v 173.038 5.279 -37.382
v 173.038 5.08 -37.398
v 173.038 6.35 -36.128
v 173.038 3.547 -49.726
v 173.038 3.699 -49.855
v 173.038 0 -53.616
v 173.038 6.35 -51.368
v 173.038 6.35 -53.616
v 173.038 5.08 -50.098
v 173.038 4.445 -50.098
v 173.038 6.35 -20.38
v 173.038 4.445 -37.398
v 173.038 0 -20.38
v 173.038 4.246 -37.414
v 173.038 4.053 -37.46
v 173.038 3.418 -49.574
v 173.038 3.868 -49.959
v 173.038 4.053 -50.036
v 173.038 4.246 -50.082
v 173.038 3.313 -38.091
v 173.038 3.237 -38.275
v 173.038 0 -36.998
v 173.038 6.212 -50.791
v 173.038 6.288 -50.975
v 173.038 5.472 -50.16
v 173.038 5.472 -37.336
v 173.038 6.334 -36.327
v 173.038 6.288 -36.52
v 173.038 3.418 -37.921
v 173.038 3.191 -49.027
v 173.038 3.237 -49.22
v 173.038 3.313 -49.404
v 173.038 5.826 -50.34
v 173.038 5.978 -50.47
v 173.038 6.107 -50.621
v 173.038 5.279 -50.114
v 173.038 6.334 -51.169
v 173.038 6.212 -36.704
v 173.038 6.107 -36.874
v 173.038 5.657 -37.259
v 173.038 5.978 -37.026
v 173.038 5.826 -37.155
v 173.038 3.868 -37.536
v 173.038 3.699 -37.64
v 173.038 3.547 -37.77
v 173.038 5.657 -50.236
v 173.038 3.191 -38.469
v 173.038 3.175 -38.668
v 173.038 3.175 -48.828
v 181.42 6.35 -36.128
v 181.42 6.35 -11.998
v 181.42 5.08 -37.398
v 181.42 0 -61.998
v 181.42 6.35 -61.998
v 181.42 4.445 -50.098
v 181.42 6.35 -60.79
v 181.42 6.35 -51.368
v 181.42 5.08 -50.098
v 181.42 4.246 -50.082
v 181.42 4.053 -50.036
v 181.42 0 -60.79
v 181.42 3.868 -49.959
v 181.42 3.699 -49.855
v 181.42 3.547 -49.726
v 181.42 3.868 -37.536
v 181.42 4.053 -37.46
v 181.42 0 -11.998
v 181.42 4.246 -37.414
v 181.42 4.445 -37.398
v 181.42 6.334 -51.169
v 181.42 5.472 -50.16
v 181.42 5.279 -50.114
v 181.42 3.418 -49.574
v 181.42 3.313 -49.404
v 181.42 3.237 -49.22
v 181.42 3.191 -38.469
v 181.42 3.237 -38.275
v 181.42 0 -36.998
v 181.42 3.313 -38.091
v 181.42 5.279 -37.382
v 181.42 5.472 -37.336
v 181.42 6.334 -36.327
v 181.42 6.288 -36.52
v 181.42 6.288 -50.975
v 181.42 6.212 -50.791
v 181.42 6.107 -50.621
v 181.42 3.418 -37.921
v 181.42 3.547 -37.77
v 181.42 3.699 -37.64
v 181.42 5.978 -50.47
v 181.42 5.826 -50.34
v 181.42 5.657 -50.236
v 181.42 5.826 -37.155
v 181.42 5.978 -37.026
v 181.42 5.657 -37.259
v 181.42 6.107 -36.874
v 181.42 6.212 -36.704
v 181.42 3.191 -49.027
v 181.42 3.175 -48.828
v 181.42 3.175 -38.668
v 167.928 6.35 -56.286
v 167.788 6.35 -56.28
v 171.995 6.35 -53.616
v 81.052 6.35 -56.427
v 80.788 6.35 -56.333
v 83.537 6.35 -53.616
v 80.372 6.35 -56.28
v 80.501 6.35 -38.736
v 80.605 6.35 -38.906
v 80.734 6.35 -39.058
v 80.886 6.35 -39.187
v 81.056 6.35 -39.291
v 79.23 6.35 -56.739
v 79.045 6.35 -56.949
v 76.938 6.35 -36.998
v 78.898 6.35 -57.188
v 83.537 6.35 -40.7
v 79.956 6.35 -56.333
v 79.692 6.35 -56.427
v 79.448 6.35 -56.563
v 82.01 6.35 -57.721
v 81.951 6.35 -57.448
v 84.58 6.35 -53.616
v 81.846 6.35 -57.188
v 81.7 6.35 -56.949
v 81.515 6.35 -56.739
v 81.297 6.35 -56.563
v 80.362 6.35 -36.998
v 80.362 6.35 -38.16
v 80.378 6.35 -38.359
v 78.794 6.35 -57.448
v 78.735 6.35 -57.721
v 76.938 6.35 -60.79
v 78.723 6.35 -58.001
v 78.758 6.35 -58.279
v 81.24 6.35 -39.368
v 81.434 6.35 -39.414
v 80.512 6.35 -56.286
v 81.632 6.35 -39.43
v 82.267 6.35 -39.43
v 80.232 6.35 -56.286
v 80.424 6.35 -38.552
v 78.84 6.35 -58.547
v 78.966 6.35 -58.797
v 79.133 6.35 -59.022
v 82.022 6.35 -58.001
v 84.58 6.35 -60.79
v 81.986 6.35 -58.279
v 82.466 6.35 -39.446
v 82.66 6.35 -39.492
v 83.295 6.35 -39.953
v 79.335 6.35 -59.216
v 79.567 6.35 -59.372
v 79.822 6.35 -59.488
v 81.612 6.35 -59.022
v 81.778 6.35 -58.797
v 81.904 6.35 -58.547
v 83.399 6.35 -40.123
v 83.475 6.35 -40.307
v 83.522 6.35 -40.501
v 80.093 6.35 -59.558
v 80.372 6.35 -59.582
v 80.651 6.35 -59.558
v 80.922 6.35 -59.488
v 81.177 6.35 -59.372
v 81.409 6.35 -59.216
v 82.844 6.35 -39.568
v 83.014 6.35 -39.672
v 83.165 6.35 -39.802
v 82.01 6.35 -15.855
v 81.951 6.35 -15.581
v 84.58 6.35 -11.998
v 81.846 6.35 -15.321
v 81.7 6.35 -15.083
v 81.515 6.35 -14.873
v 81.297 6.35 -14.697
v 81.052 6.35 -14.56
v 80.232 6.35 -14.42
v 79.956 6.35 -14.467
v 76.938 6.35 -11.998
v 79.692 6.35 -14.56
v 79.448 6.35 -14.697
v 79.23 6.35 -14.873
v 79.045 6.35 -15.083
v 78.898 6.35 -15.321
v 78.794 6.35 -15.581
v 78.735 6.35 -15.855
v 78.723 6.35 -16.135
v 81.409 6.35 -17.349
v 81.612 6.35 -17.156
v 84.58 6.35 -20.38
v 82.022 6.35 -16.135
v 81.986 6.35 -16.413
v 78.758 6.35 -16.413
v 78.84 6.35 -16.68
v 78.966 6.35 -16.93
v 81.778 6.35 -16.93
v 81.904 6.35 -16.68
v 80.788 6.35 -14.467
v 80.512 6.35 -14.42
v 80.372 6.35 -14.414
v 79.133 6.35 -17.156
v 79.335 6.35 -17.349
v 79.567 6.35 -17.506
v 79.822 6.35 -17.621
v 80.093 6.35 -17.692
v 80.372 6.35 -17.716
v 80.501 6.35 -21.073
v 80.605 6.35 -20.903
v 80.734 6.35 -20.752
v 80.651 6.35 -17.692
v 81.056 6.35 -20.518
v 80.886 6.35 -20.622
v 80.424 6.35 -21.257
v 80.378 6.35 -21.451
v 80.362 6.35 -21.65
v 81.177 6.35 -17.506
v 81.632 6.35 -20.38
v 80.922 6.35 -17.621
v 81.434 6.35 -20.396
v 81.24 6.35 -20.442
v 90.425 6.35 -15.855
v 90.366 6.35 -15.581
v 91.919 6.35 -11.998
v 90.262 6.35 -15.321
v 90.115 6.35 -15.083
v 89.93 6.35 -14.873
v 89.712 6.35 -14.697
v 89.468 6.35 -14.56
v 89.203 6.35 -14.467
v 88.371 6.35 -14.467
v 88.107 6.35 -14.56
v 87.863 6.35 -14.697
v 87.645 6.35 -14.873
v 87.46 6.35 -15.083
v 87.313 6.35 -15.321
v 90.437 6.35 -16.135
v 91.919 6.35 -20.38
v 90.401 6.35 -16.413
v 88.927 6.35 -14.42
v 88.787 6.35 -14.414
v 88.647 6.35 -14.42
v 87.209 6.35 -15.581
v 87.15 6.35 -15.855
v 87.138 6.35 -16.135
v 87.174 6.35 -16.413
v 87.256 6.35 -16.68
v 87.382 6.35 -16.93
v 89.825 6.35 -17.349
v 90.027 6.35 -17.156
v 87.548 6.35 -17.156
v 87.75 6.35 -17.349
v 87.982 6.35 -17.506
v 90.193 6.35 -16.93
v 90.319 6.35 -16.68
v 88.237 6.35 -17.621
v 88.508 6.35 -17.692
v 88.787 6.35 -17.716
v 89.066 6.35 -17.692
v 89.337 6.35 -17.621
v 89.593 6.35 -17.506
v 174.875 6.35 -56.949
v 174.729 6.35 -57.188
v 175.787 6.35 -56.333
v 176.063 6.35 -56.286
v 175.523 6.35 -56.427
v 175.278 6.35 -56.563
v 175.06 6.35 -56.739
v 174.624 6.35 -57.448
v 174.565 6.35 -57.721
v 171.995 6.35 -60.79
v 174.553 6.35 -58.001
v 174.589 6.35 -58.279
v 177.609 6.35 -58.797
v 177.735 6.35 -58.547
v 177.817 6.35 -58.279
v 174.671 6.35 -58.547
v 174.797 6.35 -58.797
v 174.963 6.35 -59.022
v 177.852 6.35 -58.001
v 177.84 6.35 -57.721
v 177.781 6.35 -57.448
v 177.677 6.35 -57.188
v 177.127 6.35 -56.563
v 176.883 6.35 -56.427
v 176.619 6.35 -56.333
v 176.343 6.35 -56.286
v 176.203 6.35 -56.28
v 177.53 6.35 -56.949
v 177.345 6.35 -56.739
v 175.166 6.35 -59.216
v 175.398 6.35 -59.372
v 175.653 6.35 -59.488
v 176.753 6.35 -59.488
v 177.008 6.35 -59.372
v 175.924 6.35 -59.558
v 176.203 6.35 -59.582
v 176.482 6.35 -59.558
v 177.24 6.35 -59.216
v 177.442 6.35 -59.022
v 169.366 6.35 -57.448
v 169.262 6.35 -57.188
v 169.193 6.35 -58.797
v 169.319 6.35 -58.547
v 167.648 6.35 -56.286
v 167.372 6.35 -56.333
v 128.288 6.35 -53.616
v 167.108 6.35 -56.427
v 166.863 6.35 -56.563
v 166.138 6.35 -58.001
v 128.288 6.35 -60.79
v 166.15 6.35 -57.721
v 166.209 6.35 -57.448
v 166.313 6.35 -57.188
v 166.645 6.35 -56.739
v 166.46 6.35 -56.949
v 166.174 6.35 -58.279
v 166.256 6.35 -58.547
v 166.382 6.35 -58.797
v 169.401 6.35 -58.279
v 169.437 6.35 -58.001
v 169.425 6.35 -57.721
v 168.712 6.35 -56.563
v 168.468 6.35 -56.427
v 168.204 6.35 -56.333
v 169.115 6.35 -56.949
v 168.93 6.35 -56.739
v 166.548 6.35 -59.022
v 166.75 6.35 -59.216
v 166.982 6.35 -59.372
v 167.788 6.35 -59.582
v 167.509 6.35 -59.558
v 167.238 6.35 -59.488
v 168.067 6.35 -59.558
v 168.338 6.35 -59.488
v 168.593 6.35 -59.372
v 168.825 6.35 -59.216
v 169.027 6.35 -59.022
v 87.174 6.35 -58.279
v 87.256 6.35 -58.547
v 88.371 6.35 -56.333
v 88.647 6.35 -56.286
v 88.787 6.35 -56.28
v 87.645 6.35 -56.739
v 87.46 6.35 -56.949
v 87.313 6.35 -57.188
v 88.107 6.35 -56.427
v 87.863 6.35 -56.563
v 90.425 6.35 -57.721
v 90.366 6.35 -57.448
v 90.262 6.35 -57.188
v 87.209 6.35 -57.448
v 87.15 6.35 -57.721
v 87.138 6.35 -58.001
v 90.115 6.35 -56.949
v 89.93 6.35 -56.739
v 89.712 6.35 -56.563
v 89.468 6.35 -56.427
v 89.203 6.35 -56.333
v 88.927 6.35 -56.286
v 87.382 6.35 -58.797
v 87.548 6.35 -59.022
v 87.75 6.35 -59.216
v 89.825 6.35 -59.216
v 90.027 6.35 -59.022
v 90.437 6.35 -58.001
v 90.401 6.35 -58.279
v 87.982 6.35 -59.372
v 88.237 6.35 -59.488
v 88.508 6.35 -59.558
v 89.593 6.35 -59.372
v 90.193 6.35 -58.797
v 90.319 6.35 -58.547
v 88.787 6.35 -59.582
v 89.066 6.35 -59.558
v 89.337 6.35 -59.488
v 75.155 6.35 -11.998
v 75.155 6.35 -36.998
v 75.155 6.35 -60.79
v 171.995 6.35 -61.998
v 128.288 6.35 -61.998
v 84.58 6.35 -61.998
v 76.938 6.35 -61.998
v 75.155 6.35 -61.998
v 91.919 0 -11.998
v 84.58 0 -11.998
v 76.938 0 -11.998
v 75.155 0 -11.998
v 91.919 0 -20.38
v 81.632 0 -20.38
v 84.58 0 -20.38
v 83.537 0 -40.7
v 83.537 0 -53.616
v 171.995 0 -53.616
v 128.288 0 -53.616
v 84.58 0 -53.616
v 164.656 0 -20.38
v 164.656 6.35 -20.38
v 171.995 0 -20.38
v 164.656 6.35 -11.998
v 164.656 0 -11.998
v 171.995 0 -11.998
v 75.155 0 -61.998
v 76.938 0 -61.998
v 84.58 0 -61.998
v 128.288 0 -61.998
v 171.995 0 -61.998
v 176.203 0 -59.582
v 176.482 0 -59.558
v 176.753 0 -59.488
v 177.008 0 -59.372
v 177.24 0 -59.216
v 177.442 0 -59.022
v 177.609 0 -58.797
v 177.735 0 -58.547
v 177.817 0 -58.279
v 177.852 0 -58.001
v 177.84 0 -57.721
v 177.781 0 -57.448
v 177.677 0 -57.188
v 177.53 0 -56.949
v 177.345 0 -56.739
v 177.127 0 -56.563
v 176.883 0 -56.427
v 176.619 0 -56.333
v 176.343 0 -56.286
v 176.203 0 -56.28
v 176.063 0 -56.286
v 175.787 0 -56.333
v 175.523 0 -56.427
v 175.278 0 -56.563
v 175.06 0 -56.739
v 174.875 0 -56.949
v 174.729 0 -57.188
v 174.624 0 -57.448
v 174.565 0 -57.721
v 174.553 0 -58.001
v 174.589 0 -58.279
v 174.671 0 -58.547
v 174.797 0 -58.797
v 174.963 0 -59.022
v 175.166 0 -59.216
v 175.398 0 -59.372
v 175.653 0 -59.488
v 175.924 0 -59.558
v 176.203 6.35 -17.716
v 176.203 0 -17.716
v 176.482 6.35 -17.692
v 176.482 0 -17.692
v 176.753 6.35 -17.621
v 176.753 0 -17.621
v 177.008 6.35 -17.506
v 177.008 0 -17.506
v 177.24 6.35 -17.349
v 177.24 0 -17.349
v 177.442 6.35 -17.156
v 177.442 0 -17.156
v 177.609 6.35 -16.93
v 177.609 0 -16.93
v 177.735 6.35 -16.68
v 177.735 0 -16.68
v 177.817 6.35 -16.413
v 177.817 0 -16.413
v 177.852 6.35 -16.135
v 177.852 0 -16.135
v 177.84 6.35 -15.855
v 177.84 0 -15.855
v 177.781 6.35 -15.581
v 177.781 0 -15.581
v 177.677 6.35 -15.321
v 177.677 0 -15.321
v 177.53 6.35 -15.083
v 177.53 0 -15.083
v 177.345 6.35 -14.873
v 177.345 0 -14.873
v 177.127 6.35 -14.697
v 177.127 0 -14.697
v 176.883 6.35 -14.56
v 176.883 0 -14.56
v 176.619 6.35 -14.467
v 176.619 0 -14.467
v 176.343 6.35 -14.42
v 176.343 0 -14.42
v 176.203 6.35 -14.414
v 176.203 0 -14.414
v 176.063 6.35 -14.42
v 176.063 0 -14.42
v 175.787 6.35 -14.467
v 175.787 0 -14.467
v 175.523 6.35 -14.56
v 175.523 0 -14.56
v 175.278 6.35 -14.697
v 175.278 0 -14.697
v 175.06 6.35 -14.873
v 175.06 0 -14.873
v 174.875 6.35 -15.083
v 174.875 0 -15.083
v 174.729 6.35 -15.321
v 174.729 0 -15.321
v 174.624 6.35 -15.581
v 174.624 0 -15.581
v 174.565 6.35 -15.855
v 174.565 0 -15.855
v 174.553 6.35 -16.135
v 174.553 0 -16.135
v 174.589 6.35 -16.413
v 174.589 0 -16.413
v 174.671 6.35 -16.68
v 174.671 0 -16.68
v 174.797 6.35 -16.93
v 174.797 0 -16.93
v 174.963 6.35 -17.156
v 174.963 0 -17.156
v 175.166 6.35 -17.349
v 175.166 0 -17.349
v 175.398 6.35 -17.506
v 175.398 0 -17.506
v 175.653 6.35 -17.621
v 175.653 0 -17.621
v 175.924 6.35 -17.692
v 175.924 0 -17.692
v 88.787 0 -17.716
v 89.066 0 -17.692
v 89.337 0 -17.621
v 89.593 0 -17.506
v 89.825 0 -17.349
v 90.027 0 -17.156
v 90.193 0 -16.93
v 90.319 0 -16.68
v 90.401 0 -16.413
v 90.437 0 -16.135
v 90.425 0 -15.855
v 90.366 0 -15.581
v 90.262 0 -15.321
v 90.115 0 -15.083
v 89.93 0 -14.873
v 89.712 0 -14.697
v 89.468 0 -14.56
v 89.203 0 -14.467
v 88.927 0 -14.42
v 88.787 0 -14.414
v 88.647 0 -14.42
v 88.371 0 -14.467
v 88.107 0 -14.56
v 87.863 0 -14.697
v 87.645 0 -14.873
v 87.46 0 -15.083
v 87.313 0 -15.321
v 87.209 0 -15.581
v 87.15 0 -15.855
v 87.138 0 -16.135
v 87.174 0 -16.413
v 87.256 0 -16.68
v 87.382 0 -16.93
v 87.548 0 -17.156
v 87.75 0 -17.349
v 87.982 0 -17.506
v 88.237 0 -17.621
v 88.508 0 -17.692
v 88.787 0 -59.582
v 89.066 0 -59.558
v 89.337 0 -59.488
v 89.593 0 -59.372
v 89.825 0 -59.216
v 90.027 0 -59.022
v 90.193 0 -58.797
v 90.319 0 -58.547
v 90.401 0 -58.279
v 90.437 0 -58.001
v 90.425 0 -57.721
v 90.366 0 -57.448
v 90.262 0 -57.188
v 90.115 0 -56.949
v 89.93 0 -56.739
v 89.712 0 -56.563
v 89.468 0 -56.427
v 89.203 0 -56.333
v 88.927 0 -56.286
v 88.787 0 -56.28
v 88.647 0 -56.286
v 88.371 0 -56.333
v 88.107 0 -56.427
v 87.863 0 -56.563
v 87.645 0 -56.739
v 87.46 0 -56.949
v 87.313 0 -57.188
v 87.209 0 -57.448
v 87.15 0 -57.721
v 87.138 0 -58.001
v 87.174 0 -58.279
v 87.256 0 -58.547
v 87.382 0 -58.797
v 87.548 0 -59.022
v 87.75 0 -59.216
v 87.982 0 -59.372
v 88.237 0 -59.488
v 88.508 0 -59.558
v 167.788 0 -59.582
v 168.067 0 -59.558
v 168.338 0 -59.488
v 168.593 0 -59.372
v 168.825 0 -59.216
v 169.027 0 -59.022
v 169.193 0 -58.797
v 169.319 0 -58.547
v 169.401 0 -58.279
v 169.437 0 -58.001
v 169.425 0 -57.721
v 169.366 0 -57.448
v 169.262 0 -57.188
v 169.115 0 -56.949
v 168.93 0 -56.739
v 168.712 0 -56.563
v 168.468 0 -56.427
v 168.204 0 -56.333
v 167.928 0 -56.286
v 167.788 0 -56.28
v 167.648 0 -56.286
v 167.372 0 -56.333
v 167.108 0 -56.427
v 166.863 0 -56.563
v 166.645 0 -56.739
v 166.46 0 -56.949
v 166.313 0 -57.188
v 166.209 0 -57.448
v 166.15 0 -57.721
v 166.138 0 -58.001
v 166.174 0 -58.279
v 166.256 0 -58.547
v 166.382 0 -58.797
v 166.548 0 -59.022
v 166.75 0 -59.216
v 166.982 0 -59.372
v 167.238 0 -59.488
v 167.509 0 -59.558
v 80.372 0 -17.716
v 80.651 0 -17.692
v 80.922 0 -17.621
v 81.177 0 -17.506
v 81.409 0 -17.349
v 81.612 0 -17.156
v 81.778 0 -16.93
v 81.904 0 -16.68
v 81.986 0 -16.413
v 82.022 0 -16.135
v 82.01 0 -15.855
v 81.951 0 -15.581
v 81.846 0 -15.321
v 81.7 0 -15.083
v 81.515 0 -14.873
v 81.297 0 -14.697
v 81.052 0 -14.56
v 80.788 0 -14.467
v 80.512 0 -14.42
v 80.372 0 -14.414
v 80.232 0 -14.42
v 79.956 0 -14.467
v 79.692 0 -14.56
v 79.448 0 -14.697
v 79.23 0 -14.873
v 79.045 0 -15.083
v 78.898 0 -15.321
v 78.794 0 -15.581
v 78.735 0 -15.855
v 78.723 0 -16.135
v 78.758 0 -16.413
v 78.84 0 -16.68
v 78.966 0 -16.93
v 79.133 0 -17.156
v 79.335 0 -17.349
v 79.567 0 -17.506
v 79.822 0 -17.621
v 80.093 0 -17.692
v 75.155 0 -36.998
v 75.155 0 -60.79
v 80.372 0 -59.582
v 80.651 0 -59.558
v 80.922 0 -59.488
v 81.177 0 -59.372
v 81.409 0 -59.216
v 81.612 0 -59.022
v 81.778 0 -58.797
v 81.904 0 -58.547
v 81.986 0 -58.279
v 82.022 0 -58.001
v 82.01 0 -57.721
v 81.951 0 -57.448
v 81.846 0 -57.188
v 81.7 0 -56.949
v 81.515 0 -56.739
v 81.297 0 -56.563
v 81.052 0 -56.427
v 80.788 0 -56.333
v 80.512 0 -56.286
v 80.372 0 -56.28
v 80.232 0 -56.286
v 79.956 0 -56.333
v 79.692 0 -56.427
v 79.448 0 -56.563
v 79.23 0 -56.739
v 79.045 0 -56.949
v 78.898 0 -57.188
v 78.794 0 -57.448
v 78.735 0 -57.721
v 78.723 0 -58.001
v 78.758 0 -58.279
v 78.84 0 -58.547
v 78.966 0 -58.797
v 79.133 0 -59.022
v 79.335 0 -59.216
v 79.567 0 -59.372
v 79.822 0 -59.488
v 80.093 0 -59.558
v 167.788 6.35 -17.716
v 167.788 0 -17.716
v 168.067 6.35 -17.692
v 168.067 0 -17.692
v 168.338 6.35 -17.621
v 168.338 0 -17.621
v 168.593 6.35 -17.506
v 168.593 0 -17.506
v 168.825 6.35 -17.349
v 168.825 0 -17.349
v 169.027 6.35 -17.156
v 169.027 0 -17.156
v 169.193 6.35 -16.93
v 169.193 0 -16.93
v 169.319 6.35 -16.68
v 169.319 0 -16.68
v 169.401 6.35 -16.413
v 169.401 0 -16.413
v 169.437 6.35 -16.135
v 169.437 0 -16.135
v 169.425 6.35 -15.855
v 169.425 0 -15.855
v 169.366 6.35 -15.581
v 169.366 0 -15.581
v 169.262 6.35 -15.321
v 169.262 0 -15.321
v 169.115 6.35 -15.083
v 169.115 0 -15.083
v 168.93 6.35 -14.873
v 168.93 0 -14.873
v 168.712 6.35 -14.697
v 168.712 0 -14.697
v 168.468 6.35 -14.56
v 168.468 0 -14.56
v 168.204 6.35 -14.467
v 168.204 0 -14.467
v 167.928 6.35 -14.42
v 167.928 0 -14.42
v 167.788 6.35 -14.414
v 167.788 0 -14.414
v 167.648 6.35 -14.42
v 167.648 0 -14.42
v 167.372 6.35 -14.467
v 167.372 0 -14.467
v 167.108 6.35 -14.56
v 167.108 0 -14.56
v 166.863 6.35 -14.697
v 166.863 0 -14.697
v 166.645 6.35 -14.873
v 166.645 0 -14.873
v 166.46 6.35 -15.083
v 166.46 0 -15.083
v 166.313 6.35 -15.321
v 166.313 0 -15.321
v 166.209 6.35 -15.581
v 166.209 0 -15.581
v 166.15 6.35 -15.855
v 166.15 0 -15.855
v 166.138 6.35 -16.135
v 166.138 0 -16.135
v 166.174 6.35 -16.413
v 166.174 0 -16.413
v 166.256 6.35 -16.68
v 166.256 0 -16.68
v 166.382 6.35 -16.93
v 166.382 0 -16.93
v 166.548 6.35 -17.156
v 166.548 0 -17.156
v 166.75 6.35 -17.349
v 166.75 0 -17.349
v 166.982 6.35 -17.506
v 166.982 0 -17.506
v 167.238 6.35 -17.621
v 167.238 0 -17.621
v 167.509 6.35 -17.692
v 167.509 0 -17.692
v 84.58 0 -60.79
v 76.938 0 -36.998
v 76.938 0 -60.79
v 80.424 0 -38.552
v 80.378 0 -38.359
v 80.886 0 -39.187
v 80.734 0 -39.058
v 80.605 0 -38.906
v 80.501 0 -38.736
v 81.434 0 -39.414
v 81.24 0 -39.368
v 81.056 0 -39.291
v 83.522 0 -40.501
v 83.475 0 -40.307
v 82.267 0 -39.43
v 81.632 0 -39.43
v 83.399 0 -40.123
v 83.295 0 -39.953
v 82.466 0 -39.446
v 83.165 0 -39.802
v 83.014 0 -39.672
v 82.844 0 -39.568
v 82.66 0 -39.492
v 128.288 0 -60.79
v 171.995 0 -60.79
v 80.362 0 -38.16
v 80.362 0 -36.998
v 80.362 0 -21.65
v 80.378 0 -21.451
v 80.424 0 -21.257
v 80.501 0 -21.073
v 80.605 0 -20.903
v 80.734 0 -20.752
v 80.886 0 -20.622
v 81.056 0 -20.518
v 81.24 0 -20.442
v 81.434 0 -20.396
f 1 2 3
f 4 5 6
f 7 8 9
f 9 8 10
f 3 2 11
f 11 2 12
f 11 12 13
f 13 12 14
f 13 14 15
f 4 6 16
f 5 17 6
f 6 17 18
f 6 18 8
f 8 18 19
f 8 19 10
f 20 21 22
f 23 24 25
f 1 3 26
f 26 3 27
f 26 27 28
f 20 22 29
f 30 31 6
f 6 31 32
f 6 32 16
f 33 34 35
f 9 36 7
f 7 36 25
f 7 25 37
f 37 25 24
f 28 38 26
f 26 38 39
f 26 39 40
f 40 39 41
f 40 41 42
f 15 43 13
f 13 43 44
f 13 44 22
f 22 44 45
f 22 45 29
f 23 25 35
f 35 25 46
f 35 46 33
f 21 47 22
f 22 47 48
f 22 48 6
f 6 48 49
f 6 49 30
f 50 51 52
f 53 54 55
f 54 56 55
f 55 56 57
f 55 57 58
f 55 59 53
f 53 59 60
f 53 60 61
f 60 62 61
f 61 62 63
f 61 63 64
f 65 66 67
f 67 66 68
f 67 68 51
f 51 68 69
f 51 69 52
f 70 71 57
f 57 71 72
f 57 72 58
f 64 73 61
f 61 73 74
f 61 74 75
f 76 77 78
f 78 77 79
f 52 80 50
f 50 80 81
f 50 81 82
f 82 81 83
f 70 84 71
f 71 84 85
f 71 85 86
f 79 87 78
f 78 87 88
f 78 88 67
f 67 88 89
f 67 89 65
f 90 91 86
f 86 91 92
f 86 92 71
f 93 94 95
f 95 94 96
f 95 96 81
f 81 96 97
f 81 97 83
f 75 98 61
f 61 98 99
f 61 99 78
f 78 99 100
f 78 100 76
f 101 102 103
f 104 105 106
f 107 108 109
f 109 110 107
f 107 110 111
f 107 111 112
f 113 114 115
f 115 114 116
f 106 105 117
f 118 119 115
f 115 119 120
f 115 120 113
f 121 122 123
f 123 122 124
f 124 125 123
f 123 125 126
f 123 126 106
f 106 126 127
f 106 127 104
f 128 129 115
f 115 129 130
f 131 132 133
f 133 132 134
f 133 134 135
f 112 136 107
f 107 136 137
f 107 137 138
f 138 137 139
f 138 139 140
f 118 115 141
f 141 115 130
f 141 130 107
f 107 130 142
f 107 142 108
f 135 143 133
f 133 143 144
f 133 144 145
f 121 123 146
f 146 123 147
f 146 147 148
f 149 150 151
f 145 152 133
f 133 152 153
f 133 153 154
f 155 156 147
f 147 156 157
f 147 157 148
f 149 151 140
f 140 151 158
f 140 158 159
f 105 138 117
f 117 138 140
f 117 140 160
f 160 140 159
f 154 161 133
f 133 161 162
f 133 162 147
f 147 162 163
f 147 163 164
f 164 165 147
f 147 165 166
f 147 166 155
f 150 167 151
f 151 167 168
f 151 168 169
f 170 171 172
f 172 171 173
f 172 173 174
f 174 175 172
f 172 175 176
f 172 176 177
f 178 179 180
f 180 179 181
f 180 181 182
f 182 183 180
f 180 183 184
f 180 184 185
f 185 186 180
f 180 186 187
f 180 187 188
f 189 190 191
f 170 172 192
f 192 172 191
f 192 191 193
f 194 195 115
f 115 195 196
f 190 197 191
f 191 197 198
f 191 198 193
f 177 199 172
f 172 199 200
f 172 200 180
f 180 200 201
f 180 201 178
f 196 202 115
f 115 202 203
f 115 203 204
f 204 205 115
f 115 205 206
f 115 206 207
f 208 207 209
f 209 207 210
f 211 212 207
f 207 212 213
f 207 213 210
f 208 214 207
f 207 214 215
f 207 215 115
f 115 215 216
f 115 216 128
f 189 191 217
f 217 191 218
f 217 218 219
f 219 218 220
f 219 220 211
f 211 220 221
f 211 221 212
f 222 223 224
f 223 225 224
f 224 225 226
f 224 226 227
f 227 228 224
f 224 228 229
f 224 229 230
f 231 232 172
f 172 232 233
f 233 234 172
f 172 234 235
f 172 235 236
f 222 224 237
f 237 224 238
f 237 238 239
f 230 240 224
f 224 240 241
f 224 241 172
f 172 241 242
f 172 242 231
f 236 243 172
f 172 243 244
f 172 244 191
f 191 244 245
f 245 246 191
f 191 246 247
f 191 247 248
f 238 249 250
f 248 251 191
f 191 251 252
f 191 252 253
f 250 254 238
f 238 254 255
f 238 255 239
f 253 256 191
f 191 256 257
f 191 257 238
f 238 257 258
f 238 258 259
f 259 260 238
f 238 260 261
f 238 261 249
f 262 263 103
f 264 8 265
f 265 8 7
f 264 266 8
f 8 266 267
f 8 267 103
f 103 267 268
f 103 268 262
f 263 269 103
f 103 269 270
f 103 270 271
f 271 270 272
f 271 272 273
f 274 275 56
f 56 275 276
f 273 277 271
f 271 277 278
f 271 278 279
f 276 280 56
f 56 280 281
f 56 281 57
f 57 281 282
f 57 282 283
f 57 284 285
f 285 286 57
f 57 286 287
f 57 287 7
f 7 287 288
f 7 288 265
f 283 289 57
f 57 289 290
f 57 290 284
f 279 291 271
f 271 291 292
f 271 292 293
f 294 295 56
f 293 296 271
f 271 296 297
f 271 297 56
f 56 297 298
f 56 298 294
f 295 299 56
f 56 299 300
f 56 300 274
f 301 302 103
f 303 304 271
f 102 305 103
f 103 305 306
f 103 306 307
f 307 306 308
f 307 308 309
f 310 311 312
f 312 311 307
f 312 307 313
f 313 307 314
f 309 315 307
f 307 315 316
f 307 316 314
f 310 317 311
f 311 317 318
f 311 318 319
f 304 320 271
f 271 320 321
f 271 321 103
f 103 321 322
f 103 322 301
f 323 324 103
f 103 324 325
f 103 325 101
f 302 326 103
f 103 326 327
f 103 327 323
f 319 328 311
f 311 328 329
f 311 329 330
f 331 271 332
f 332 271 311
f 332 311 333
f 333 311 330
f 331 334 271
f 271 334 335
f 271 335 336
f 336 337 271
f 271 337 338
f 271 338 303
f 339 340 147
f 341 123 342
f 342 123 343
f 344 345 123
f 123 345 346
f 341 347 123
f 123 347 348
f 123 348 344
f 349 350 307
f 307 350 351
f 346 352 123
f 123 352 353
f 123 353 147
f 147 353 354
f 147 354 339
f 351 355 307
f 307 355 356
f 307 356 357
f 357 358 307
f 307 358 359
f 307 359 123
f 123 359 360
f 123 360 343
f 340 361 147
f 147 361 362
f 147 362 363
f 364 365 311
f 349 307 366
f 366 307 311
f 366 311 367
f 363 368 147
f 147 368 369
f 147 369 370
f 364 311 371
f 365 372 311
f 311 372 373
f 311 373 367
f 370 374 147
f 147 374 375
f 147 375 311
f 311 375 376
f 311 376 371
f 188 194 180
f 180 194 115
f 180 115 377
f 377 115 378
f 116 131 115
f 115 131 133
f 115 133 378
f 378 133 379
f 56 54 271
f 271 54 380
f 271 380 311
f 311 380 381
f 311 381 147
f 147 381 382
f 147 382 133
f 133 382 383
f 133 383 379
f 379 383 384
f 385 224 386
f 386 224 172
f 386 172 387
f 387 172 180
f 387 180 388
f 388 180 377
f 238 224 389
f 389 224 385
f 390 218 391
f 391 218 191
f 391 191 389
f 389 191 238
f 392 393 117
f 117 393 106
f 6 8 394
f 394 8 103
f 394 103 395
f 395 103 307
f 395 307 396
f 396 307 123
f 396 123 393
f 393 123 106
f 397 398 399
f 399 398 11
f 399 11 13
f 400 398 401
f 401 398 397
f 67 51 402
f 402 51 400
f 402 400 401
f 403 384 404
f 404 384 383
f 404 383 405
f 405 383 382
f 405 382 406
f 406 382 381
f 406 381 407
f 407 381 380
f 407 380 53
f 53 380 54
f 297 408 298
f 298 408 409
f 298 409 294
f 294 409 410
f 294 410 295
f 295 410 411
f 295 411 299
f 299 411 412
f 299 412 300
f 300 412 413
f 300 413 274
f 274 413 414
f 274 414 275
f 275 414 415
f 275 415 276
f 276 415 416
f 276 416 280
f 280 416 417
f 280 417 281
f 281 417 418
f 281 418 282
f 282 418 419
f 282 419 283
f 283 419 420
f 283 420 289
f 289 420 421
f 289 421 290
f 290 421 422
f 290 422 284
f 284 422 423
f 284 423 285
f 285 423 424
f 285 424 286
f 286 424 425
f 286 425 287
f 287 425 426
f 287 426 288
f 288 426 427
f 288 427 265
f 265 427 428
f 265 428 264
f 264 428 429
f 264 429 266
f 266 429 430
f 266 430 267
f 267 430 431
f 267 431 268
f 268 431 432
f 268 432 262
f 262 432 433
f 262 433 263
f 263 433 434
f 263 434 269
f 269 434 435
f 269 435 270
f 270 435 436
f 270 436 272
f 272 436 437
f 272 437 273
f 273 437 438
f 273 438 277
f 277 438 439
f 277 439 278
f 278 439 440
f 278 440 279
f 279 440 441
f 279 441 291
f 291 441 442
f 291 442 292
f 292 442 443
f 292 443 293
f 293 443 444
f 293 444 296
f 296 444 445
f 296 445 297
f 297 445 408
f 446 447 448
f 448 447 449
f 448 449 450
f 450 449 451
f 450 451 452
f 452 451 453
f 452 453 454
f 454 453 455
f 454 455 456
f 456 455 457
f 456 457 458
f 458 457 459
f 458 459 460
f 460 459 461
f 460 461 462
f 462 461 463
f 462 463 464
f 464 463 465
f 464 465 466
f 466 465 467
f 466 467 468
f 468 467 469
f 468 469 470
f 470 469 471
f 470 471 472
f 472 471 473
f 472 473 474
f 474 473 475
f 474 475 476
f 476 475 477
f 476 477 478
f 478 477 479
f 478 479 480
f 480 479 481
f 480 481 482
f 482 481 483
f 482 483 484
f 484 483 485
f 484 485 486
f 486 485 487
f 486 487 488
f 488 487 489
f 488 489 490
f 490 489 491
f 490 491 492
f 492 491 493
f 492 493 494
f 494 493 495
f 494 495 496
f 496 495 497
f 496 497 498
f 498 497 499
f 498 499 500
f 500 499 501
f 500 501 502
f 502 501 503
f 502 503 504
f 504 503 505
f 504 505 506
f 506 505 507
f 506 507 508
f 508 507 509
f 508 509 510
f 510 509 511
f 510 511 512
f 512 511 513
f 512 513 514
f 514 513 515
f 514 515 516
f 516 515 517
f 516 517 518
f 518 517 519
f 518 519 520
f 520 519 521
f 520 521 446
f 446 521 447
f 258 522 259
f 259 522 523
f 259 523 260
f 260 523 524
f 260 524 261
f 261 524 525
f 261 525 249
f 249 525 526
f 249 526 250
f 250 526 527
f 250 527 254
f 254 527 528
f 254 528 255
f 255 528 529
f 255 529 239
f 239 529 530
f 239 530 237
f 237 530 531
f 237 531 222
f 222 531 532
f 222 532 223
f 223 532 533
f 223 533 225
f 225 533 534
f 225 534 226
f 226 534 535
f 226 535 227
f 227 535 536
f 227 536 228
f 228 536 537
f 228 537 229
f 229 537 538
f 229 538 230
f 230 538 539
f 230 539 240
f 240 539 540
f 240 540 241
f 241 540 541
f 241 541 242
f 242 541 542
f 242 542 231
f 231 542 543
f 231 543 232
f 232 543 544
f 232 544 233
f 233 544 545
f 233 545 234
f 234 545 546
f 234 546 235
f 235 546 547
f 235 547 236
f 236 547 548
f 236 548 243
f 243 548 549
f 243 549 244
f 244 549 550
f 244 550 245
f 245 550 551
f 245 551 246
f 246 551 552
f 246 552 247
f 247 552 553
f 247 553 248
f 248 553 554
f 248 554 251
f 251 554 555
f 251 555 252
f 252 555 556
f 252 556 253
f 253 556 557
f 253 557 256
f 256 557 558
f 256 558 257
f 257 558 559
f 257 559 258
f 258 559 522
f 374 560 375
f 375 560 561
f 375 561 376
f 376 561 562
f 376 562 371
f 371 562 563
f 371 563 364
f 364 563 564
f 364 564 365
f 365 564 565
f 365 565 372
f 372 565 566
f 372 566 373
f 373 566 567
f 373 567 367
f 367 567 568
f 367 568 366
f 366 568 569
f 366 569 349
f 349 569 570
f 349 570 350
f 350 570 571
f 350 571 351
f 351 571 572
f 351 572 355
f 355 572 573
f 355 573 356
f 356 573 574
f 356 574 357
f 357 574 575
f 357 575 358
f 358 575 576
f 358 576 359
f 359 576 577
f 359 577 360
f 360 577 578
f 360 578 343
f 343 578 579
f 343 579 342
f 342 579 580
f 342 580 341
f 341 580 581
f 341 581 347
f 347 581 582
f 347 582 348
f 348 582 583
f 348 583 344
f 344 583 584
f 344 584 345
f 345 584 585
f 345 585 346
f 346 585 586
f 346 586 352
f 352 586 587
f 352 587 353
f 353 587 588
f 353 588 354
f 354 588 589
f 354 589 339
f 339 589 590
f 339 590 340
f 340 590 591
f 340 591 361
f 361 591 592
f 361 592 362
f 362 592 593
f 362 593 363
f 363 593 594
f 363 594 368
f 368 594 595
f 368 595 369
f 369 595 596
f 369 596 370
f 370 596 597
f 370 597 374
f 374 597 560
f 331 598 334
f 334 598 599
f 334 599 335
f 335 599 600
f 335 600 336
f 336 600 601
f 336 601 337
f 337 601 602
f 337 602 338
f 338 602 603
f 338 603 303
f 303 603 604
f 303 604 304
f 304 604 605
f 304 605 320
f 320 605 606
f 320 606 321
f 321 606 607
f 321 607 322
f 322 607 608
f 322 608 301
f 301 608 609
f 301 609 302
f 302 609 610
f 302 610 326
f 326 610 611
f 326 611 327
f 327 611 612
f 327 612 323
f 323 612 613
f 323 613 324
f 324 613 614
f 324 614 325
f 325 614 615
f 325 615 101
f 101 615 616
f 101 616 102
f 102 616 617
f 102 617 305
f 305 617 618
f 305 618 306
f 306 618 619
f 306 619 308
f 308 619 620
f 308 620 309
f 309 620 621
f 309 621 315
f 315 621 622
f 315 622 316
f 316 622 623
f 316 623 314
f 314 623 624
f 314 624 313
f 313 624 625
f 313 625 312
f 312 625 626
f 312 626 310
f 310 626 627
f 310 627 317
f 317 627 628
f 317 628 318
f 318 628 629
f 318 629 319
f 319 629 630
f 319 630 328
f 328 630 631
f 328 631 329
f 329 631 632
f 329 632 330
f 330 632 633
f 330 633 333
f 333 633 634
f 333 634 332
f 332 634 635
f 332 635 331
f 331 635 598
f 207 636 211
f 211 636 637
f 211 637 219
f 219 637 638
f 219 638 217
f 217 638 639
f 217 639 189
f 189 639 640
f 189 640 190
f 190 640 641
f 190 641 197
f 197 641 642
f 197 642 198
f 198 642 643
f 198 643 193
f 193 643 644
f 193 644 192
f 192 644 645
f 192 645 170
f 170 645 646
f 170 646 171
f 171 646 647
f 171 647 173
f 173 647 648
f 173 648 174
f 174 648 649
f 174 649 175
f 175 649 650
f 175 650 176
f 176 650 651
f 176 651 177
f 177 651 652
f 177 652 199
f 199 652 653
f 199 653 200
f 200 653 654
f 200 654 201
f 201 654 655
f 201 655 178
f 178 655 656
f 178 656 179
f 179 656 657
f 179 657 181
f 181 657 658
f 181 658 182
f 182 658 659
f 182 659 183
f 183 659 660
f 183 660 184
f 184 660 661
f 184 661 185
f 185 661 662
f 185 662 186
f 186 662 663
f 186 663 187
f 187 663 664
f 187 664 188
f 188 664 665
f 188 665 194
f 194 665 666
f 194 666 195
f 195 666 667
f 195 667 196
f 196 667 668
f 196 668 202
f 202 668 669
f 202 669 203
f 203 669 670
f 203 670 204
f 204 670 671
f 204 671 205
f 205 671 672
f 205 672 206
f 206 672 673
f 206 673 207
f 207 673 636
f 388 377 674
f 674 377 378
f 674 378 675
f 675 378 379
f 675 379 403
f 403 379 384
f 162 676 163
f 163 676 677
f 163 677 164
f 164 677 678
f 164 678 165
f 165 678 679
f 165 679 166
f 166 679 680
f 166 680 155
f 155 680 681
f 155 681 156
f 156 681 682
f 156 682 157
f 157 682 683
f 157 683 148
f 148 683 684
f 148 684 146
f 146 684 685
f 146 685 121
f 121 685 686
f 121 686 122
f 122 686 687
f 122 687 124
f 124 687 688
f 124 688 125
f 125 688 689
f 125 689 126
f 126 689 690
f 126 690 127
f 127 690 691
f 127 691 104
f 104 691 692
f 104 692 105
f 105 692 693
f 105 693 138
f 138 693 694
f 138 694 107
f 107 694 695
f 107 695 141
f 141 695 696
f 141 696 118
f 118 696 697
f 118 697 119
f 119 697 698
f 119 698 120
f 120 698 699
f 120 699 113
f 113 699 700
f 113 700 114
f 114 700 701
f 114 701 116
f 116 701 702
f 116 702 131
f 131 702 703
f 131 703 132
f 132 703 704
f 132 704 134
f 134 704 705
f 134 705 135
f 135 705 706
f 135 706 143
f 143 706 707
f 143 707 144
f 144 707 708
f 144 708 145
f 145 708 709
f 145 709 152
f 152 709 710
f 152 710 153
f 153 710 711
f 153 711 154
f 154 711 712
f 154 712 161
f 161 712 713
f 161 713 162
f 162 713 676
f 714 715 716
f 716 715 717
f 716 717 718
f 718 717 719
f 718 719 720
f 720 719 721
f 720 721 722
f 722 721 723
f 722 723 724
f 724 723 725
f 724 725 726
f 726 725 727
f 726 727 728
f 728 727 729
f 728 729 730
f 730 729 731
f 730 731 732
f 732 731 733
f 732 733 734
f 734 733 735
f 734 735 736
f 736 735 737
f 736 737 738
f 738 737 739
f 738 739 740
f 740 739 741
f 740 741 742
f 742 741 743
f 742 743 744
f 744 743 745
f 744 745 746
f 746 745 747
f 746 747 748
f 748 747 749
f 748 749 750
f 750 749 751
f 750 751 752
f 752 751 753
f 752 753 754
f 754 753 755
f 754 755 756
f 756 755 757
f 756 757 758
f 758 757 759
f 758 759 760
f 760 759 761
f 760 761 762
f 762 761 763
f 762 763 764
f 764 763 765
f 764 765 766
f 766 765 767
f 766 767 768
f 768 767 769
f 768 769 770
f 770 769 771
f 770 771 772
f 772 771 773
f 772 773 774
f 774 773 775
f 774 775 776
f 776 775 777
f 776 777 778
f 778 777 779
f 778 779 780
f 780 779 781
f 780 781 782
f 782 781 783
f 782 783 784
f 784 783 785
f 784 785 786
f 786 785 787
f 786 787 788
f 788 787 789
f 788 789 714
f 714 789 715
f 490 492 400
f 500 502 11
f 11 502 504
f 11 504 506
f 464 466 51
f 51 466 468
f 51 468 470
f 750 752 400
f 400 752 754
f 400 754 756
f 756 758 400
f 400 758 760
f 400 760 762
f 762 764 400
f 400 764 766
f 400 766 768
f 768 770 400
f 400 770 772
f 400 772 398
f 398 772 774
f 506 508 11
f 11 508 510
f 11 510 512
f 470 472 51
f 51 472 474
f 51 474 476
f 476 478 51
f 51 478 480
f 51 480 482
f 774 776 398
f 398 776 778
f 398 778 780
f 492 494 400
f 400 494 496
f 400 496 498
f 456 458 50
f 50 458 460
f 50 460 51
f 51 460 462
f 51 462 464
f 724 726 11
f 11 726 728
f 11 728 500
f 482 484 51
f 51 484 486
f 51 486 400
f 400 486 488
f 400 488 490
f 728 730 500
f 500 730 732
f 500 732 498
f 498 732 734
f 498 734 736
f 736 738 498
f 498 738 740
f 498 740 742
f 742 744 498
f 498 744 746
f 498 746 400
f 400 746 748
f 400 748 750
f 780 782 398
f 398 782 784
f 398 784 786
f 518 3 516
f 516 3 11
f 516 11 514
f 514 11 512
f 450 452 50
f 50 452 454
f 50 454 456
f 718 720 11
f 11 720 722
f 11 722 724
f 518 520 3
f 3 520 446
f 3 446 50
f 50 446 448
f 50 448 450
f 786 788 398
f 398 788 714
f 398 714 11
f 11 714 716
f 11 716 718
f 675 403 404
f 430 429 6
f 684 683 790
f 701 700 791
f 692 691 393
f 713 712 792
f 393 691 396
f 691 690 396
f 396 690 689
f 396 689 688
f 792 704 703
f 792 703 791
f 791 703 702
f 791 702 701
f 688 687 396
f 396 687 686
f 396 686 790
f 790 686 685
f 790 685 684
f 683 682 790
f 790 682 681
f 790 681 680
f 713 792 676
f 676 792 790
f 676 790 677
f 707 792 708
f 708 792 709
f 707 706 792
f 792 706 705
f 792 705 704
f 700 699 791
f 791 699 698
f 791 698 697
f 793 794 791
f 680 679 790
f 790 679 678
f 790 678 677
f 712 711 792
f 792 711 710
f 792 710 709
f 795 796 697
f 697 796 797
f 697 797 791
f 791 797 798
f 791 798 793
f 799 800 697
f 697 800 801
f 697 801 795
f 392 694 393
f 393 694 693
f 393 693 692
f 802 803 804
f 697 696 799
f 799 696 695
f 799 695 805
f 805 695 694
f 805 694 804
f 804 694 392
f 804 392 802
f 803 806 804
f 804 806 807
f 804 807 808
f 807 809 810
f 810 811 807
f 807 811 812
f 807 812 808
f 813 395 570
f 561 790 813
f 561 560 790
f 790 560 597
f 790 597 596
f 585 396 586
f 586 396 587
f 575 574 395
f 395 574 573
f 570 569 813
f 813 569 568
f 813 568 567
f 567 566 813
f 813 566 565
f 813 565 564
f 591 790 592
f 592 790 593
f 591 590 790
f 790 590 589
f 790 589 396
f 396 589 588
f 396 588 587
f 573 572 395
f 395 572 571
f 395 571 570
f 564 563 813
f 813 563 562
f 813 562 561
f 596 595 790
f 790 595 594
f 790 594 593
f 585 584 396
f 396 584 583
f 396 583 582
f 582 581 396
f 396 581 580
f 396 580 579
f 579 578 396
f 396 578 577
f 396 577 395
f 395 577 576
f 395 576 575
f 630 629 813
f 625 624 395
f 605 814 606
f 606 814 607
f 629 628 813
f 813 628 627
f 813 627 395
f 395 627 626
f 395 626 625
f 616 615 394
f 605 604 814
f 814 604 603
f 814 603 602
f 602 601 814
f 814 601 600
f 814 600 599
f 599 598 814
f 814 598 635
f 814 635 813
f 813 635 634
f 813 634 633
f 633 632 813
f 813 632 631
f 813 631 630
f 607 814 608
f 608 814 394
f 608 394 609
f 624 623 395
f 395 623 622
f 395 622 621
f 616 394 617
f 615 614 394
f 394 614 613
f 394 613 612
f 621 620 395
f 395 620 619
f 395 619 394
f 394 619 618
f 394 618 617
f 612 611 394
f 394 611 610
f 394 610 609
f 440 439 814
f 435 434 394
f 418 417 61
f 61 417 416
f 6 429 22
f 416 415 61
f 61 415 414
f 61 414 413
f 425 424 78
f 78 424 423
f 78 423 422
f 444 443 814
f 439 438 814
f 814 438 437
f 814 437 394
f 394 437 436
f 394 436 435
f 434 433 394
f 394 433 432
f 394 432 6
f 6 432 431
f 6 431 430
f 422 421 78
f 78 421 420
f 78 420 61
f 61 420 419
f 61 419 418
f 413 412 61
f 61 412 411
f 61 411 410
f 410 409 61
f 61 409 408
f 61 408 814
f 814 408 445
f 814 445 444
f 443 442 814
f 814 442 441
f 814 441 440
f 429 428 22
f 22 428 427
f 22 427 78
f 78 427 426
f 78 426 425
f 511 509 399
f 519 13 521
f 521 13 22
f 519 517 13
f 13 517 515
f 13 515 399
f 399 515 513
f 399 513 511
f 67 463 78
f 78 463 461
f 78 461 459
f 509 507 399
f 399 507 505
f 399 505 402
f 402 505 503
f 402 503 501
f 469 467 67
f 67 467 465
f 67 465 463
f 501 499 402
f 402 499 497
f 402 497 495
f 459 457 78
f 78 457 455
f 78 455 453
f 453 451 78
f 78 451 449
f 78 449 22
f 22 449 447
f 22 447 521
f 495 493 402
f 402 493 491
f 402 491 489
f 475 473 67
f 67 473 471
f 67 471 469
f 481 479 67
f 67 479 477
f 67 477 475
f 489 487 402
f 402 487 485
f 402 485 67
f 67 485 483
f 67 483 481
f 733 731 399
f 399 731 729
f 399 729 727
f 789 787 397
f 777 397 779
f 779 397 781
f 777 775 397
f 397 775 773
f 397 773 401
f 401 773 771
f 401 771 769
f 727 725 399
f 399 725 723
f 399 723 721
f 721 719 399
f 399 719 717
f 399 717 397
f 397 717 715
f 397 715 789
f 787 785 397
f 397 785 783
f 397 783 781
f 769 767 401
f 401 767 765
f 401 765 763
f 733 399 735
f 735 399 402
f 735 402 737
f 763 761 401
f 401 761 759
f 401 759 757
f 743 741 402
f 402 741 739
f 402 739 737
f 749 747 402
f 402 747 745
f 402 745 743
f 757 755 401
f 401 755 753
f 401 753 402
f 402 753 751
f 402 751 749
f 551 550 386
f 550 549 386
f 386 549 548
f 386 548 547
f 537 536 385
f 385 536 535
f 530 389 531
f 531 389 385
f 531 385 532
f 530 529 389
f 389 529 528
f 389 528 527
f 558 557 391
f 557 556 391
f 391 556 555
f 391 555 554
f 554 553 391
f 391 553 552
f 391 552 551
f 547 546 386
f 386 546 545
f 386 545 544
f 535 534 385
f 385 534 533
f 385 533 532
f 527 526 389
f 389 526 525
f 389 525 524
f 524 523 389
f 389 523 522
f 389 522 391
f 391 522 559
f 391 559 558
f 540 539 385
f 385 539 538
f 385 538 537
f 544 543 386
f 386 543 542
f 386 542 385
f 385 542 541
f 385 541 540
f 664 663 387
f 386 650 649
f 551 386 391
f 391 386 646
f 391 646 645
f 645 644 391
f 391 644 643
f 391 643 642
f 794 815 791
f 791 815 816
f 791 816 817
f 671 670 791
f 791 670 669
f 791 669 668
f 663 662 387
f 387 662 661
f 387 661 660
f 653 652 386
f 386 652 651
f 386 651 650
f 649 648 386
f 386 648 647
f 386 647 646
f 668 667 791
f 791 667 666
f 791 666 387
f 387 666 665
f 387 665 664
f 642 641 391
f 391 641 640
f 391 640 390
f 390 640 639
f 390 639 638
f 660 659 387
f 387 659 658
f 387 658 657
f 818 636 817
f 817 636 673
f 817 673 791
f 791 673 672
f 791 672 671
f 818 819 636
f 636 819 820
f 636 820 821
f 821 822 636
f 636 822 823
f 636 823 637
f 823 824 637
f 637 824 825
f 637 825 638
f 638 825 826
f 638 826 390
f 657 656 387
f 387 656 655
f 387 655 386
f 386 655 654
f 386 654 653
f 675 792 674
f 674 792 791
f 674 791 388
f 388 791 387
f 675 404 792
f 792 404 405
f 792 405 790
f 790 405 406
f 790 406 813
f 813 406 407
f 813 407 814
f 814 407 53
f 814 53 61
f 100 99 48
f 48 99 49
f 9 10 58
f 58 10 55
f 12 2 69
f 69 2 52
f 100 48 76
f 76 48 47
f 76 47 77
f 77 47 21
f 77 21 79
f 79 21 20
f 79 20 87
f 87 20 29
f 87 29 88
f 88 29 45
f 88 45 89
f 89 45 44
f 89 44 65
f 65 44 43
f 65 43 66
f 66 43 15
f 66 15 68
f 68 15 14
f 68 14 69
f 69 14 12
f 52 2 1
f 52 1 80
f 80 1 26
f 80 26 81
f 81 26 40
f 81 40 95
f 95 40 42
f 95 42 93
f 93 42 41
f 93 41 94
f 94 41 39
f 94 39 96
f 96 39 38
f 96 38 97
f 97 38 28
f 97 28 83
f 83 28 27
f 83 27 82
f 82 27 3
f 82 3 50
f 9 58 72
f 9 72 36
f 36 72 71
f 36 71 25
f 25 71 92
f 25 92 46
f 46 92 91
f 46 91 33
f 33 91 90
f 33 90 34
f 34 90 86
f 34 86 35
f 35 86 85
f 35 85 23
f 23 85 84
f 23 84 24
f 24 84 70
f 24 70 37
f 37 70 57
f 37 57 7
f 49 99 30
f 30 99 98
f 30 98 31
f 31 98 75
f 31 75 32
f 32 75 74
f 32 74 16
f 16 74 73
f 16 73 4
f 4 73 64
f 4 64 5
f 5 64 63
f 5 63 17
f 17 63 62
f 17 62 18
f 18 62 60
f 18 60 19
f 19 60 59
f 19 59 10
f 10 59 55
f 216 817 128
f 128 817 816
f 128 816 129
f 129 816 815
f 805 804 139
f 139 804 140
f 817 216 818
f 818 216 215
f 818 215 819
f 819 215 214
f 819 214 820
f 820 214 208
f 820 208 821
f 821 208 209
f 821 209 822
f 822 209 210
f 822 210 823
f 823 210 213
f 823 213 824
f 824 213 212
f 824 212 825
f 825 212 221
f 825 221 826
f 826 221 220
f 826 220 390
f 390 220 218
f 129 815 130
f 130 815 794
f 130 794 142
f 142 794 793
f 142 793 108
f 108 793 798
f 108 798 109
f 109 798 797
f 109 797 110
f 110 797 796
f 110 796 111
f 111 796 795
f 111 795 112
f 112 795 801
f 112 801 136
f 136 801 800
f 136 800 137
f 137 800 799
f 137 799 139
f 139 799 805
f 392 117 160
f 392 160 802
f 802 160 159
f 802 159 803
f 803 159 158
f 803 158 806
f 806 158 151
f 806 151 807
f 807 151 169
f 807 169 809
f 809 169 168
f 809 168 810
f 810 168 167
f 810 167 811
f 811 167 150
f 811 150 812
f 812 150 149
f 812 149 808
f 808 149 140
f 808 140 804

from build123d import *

# Parameters (mm, degrees)
SKETCH1_R           = 1.651
BOSS_EXTRUDE1_DEPTH = 6.35
SKETCH2_W           = 12.7
SKETCH2_H           = 3.175
CUT_EXTRUDE7_DEPTH  = 8.89
FILLET2_R           = 1.27
SKETCH4_W           = 3.175
SKETCH4_H           = 19.05
CUT_EXTRUDE8_DEPTH  = 192.82600491
FILLET3_R           = 1.27


with BuildPart() as part:
    # Sketch1 → Boss-Extrude1 (new body)
    with BuildSketch(Plane(origin=(0, 0, 0), x_dir=(1, 0, 0), z_dir=(0, 1, 0))):
        Polygon((75.155177047, 61.997896552), (75.155177047, 11.997896552), (91.919177047, 11.997896552), (91.919177047, 20.379896552), (83.537177047, 20.379896552), (83.537177047, 53.615896552), (173.037829354, 53.615896552), (173.037829354, 20.379896552), (164.655829354, 20.379896552), (164.655829354, 11.997896552), (181.419829354, 11.997896552), (181.419829354, 61.997896552), align=None)
        with Locations((80.3721812, 16.064784874)):
            Circle(SKETCH1_R, mode=Mode.SUBTRACT)
        with Locations((80.3721812, 57.93100823)):
            Circle(SKETCH1_R, mode=Mode.SUBTRACT)
        with Locations((167.7875512, 57.93100823)):
            Circle(SKETCH1_R, mode=Mode.SUBTRACT)
        with Locations((88.7874552, 57.93100823)):
            Circle(SKETCH1_R, mode=Mode.SUBTRACT)
        with Locations((88.7874552, 16.064784874)):
            Circle(SKETCH1_R, mode=Mode.SUBTRACT)
        with Locations((176.2028252, 57.93100823)):
            Circle(SKETCH1_R, mode=Mode.SUBTRACT)
        with Locations((176.2028252, 16.064784874)):
            Circle(SKETCH1_R, mode=Mode.SUBTRACT)
        with Locations((167.7875512, 16.064784874)):
            Circle(SKETCH1_R, mode=Mode.SUBTRACT)
    extrude(amount=BOSS_EXTRUDE1_DEPTH)

    # Sketch2 → Cut-Extrude7 (cut)
    with BuildSketch(Plane(origin=(181.419829354, 0, 0), x_dir=(0, 0, -1), z_dir=(1, 0, 0))):
        with Locations((43.747896552, 4.7625)):
            Rectangle(SKETCH2_W, SKETCH2_H)
    extrude(amount=-CUT_EXTRUDE7_DEPTH, mode=Mode.SUBTRACT)

    # Fillet2
    fillet2_edges = [part.edges().sort_by_distance(p)[0] for p in [
        (177.228829354, 3.175, -37.397896552),
        (177.228829354, 6.35, -37.397896552),
        (177.228829354, 6.35, -50.097896552),
        (177.228829354, 3.175, -50.097896552),
    ]]
    fillet(fillet2_edges, radius=FILLET2_R)

    # Sketch4 → Cut-Extrude8 (cut, through all)
    with BuildSketch(Plane(origin=(0, 6.35, 0), x_dir=(1, 0, 0), z_dir=(0, 1, 0))):
        with Locations((81.949677047, 29.904896552)):
            Rectangle(SKETCH4_W, SKETCH4_H)
    extrude(amount=-CUT_EXTRUDE8_DEPTH, mode=Mode.SUBTRACT)

    # Fillet3
    fillet3_edges = [part.edges().sort_by_distance(p)[0] for p in [
        (80.362177047, 3.175, -20.379896552),
        (80.362177047, 3.175, -39.429896552),
        (83.537177047, 3.175, -39.429896552),
    ]]
    fillet(fillet3_edges, radius=FILLET3_R)


solid = part.part
